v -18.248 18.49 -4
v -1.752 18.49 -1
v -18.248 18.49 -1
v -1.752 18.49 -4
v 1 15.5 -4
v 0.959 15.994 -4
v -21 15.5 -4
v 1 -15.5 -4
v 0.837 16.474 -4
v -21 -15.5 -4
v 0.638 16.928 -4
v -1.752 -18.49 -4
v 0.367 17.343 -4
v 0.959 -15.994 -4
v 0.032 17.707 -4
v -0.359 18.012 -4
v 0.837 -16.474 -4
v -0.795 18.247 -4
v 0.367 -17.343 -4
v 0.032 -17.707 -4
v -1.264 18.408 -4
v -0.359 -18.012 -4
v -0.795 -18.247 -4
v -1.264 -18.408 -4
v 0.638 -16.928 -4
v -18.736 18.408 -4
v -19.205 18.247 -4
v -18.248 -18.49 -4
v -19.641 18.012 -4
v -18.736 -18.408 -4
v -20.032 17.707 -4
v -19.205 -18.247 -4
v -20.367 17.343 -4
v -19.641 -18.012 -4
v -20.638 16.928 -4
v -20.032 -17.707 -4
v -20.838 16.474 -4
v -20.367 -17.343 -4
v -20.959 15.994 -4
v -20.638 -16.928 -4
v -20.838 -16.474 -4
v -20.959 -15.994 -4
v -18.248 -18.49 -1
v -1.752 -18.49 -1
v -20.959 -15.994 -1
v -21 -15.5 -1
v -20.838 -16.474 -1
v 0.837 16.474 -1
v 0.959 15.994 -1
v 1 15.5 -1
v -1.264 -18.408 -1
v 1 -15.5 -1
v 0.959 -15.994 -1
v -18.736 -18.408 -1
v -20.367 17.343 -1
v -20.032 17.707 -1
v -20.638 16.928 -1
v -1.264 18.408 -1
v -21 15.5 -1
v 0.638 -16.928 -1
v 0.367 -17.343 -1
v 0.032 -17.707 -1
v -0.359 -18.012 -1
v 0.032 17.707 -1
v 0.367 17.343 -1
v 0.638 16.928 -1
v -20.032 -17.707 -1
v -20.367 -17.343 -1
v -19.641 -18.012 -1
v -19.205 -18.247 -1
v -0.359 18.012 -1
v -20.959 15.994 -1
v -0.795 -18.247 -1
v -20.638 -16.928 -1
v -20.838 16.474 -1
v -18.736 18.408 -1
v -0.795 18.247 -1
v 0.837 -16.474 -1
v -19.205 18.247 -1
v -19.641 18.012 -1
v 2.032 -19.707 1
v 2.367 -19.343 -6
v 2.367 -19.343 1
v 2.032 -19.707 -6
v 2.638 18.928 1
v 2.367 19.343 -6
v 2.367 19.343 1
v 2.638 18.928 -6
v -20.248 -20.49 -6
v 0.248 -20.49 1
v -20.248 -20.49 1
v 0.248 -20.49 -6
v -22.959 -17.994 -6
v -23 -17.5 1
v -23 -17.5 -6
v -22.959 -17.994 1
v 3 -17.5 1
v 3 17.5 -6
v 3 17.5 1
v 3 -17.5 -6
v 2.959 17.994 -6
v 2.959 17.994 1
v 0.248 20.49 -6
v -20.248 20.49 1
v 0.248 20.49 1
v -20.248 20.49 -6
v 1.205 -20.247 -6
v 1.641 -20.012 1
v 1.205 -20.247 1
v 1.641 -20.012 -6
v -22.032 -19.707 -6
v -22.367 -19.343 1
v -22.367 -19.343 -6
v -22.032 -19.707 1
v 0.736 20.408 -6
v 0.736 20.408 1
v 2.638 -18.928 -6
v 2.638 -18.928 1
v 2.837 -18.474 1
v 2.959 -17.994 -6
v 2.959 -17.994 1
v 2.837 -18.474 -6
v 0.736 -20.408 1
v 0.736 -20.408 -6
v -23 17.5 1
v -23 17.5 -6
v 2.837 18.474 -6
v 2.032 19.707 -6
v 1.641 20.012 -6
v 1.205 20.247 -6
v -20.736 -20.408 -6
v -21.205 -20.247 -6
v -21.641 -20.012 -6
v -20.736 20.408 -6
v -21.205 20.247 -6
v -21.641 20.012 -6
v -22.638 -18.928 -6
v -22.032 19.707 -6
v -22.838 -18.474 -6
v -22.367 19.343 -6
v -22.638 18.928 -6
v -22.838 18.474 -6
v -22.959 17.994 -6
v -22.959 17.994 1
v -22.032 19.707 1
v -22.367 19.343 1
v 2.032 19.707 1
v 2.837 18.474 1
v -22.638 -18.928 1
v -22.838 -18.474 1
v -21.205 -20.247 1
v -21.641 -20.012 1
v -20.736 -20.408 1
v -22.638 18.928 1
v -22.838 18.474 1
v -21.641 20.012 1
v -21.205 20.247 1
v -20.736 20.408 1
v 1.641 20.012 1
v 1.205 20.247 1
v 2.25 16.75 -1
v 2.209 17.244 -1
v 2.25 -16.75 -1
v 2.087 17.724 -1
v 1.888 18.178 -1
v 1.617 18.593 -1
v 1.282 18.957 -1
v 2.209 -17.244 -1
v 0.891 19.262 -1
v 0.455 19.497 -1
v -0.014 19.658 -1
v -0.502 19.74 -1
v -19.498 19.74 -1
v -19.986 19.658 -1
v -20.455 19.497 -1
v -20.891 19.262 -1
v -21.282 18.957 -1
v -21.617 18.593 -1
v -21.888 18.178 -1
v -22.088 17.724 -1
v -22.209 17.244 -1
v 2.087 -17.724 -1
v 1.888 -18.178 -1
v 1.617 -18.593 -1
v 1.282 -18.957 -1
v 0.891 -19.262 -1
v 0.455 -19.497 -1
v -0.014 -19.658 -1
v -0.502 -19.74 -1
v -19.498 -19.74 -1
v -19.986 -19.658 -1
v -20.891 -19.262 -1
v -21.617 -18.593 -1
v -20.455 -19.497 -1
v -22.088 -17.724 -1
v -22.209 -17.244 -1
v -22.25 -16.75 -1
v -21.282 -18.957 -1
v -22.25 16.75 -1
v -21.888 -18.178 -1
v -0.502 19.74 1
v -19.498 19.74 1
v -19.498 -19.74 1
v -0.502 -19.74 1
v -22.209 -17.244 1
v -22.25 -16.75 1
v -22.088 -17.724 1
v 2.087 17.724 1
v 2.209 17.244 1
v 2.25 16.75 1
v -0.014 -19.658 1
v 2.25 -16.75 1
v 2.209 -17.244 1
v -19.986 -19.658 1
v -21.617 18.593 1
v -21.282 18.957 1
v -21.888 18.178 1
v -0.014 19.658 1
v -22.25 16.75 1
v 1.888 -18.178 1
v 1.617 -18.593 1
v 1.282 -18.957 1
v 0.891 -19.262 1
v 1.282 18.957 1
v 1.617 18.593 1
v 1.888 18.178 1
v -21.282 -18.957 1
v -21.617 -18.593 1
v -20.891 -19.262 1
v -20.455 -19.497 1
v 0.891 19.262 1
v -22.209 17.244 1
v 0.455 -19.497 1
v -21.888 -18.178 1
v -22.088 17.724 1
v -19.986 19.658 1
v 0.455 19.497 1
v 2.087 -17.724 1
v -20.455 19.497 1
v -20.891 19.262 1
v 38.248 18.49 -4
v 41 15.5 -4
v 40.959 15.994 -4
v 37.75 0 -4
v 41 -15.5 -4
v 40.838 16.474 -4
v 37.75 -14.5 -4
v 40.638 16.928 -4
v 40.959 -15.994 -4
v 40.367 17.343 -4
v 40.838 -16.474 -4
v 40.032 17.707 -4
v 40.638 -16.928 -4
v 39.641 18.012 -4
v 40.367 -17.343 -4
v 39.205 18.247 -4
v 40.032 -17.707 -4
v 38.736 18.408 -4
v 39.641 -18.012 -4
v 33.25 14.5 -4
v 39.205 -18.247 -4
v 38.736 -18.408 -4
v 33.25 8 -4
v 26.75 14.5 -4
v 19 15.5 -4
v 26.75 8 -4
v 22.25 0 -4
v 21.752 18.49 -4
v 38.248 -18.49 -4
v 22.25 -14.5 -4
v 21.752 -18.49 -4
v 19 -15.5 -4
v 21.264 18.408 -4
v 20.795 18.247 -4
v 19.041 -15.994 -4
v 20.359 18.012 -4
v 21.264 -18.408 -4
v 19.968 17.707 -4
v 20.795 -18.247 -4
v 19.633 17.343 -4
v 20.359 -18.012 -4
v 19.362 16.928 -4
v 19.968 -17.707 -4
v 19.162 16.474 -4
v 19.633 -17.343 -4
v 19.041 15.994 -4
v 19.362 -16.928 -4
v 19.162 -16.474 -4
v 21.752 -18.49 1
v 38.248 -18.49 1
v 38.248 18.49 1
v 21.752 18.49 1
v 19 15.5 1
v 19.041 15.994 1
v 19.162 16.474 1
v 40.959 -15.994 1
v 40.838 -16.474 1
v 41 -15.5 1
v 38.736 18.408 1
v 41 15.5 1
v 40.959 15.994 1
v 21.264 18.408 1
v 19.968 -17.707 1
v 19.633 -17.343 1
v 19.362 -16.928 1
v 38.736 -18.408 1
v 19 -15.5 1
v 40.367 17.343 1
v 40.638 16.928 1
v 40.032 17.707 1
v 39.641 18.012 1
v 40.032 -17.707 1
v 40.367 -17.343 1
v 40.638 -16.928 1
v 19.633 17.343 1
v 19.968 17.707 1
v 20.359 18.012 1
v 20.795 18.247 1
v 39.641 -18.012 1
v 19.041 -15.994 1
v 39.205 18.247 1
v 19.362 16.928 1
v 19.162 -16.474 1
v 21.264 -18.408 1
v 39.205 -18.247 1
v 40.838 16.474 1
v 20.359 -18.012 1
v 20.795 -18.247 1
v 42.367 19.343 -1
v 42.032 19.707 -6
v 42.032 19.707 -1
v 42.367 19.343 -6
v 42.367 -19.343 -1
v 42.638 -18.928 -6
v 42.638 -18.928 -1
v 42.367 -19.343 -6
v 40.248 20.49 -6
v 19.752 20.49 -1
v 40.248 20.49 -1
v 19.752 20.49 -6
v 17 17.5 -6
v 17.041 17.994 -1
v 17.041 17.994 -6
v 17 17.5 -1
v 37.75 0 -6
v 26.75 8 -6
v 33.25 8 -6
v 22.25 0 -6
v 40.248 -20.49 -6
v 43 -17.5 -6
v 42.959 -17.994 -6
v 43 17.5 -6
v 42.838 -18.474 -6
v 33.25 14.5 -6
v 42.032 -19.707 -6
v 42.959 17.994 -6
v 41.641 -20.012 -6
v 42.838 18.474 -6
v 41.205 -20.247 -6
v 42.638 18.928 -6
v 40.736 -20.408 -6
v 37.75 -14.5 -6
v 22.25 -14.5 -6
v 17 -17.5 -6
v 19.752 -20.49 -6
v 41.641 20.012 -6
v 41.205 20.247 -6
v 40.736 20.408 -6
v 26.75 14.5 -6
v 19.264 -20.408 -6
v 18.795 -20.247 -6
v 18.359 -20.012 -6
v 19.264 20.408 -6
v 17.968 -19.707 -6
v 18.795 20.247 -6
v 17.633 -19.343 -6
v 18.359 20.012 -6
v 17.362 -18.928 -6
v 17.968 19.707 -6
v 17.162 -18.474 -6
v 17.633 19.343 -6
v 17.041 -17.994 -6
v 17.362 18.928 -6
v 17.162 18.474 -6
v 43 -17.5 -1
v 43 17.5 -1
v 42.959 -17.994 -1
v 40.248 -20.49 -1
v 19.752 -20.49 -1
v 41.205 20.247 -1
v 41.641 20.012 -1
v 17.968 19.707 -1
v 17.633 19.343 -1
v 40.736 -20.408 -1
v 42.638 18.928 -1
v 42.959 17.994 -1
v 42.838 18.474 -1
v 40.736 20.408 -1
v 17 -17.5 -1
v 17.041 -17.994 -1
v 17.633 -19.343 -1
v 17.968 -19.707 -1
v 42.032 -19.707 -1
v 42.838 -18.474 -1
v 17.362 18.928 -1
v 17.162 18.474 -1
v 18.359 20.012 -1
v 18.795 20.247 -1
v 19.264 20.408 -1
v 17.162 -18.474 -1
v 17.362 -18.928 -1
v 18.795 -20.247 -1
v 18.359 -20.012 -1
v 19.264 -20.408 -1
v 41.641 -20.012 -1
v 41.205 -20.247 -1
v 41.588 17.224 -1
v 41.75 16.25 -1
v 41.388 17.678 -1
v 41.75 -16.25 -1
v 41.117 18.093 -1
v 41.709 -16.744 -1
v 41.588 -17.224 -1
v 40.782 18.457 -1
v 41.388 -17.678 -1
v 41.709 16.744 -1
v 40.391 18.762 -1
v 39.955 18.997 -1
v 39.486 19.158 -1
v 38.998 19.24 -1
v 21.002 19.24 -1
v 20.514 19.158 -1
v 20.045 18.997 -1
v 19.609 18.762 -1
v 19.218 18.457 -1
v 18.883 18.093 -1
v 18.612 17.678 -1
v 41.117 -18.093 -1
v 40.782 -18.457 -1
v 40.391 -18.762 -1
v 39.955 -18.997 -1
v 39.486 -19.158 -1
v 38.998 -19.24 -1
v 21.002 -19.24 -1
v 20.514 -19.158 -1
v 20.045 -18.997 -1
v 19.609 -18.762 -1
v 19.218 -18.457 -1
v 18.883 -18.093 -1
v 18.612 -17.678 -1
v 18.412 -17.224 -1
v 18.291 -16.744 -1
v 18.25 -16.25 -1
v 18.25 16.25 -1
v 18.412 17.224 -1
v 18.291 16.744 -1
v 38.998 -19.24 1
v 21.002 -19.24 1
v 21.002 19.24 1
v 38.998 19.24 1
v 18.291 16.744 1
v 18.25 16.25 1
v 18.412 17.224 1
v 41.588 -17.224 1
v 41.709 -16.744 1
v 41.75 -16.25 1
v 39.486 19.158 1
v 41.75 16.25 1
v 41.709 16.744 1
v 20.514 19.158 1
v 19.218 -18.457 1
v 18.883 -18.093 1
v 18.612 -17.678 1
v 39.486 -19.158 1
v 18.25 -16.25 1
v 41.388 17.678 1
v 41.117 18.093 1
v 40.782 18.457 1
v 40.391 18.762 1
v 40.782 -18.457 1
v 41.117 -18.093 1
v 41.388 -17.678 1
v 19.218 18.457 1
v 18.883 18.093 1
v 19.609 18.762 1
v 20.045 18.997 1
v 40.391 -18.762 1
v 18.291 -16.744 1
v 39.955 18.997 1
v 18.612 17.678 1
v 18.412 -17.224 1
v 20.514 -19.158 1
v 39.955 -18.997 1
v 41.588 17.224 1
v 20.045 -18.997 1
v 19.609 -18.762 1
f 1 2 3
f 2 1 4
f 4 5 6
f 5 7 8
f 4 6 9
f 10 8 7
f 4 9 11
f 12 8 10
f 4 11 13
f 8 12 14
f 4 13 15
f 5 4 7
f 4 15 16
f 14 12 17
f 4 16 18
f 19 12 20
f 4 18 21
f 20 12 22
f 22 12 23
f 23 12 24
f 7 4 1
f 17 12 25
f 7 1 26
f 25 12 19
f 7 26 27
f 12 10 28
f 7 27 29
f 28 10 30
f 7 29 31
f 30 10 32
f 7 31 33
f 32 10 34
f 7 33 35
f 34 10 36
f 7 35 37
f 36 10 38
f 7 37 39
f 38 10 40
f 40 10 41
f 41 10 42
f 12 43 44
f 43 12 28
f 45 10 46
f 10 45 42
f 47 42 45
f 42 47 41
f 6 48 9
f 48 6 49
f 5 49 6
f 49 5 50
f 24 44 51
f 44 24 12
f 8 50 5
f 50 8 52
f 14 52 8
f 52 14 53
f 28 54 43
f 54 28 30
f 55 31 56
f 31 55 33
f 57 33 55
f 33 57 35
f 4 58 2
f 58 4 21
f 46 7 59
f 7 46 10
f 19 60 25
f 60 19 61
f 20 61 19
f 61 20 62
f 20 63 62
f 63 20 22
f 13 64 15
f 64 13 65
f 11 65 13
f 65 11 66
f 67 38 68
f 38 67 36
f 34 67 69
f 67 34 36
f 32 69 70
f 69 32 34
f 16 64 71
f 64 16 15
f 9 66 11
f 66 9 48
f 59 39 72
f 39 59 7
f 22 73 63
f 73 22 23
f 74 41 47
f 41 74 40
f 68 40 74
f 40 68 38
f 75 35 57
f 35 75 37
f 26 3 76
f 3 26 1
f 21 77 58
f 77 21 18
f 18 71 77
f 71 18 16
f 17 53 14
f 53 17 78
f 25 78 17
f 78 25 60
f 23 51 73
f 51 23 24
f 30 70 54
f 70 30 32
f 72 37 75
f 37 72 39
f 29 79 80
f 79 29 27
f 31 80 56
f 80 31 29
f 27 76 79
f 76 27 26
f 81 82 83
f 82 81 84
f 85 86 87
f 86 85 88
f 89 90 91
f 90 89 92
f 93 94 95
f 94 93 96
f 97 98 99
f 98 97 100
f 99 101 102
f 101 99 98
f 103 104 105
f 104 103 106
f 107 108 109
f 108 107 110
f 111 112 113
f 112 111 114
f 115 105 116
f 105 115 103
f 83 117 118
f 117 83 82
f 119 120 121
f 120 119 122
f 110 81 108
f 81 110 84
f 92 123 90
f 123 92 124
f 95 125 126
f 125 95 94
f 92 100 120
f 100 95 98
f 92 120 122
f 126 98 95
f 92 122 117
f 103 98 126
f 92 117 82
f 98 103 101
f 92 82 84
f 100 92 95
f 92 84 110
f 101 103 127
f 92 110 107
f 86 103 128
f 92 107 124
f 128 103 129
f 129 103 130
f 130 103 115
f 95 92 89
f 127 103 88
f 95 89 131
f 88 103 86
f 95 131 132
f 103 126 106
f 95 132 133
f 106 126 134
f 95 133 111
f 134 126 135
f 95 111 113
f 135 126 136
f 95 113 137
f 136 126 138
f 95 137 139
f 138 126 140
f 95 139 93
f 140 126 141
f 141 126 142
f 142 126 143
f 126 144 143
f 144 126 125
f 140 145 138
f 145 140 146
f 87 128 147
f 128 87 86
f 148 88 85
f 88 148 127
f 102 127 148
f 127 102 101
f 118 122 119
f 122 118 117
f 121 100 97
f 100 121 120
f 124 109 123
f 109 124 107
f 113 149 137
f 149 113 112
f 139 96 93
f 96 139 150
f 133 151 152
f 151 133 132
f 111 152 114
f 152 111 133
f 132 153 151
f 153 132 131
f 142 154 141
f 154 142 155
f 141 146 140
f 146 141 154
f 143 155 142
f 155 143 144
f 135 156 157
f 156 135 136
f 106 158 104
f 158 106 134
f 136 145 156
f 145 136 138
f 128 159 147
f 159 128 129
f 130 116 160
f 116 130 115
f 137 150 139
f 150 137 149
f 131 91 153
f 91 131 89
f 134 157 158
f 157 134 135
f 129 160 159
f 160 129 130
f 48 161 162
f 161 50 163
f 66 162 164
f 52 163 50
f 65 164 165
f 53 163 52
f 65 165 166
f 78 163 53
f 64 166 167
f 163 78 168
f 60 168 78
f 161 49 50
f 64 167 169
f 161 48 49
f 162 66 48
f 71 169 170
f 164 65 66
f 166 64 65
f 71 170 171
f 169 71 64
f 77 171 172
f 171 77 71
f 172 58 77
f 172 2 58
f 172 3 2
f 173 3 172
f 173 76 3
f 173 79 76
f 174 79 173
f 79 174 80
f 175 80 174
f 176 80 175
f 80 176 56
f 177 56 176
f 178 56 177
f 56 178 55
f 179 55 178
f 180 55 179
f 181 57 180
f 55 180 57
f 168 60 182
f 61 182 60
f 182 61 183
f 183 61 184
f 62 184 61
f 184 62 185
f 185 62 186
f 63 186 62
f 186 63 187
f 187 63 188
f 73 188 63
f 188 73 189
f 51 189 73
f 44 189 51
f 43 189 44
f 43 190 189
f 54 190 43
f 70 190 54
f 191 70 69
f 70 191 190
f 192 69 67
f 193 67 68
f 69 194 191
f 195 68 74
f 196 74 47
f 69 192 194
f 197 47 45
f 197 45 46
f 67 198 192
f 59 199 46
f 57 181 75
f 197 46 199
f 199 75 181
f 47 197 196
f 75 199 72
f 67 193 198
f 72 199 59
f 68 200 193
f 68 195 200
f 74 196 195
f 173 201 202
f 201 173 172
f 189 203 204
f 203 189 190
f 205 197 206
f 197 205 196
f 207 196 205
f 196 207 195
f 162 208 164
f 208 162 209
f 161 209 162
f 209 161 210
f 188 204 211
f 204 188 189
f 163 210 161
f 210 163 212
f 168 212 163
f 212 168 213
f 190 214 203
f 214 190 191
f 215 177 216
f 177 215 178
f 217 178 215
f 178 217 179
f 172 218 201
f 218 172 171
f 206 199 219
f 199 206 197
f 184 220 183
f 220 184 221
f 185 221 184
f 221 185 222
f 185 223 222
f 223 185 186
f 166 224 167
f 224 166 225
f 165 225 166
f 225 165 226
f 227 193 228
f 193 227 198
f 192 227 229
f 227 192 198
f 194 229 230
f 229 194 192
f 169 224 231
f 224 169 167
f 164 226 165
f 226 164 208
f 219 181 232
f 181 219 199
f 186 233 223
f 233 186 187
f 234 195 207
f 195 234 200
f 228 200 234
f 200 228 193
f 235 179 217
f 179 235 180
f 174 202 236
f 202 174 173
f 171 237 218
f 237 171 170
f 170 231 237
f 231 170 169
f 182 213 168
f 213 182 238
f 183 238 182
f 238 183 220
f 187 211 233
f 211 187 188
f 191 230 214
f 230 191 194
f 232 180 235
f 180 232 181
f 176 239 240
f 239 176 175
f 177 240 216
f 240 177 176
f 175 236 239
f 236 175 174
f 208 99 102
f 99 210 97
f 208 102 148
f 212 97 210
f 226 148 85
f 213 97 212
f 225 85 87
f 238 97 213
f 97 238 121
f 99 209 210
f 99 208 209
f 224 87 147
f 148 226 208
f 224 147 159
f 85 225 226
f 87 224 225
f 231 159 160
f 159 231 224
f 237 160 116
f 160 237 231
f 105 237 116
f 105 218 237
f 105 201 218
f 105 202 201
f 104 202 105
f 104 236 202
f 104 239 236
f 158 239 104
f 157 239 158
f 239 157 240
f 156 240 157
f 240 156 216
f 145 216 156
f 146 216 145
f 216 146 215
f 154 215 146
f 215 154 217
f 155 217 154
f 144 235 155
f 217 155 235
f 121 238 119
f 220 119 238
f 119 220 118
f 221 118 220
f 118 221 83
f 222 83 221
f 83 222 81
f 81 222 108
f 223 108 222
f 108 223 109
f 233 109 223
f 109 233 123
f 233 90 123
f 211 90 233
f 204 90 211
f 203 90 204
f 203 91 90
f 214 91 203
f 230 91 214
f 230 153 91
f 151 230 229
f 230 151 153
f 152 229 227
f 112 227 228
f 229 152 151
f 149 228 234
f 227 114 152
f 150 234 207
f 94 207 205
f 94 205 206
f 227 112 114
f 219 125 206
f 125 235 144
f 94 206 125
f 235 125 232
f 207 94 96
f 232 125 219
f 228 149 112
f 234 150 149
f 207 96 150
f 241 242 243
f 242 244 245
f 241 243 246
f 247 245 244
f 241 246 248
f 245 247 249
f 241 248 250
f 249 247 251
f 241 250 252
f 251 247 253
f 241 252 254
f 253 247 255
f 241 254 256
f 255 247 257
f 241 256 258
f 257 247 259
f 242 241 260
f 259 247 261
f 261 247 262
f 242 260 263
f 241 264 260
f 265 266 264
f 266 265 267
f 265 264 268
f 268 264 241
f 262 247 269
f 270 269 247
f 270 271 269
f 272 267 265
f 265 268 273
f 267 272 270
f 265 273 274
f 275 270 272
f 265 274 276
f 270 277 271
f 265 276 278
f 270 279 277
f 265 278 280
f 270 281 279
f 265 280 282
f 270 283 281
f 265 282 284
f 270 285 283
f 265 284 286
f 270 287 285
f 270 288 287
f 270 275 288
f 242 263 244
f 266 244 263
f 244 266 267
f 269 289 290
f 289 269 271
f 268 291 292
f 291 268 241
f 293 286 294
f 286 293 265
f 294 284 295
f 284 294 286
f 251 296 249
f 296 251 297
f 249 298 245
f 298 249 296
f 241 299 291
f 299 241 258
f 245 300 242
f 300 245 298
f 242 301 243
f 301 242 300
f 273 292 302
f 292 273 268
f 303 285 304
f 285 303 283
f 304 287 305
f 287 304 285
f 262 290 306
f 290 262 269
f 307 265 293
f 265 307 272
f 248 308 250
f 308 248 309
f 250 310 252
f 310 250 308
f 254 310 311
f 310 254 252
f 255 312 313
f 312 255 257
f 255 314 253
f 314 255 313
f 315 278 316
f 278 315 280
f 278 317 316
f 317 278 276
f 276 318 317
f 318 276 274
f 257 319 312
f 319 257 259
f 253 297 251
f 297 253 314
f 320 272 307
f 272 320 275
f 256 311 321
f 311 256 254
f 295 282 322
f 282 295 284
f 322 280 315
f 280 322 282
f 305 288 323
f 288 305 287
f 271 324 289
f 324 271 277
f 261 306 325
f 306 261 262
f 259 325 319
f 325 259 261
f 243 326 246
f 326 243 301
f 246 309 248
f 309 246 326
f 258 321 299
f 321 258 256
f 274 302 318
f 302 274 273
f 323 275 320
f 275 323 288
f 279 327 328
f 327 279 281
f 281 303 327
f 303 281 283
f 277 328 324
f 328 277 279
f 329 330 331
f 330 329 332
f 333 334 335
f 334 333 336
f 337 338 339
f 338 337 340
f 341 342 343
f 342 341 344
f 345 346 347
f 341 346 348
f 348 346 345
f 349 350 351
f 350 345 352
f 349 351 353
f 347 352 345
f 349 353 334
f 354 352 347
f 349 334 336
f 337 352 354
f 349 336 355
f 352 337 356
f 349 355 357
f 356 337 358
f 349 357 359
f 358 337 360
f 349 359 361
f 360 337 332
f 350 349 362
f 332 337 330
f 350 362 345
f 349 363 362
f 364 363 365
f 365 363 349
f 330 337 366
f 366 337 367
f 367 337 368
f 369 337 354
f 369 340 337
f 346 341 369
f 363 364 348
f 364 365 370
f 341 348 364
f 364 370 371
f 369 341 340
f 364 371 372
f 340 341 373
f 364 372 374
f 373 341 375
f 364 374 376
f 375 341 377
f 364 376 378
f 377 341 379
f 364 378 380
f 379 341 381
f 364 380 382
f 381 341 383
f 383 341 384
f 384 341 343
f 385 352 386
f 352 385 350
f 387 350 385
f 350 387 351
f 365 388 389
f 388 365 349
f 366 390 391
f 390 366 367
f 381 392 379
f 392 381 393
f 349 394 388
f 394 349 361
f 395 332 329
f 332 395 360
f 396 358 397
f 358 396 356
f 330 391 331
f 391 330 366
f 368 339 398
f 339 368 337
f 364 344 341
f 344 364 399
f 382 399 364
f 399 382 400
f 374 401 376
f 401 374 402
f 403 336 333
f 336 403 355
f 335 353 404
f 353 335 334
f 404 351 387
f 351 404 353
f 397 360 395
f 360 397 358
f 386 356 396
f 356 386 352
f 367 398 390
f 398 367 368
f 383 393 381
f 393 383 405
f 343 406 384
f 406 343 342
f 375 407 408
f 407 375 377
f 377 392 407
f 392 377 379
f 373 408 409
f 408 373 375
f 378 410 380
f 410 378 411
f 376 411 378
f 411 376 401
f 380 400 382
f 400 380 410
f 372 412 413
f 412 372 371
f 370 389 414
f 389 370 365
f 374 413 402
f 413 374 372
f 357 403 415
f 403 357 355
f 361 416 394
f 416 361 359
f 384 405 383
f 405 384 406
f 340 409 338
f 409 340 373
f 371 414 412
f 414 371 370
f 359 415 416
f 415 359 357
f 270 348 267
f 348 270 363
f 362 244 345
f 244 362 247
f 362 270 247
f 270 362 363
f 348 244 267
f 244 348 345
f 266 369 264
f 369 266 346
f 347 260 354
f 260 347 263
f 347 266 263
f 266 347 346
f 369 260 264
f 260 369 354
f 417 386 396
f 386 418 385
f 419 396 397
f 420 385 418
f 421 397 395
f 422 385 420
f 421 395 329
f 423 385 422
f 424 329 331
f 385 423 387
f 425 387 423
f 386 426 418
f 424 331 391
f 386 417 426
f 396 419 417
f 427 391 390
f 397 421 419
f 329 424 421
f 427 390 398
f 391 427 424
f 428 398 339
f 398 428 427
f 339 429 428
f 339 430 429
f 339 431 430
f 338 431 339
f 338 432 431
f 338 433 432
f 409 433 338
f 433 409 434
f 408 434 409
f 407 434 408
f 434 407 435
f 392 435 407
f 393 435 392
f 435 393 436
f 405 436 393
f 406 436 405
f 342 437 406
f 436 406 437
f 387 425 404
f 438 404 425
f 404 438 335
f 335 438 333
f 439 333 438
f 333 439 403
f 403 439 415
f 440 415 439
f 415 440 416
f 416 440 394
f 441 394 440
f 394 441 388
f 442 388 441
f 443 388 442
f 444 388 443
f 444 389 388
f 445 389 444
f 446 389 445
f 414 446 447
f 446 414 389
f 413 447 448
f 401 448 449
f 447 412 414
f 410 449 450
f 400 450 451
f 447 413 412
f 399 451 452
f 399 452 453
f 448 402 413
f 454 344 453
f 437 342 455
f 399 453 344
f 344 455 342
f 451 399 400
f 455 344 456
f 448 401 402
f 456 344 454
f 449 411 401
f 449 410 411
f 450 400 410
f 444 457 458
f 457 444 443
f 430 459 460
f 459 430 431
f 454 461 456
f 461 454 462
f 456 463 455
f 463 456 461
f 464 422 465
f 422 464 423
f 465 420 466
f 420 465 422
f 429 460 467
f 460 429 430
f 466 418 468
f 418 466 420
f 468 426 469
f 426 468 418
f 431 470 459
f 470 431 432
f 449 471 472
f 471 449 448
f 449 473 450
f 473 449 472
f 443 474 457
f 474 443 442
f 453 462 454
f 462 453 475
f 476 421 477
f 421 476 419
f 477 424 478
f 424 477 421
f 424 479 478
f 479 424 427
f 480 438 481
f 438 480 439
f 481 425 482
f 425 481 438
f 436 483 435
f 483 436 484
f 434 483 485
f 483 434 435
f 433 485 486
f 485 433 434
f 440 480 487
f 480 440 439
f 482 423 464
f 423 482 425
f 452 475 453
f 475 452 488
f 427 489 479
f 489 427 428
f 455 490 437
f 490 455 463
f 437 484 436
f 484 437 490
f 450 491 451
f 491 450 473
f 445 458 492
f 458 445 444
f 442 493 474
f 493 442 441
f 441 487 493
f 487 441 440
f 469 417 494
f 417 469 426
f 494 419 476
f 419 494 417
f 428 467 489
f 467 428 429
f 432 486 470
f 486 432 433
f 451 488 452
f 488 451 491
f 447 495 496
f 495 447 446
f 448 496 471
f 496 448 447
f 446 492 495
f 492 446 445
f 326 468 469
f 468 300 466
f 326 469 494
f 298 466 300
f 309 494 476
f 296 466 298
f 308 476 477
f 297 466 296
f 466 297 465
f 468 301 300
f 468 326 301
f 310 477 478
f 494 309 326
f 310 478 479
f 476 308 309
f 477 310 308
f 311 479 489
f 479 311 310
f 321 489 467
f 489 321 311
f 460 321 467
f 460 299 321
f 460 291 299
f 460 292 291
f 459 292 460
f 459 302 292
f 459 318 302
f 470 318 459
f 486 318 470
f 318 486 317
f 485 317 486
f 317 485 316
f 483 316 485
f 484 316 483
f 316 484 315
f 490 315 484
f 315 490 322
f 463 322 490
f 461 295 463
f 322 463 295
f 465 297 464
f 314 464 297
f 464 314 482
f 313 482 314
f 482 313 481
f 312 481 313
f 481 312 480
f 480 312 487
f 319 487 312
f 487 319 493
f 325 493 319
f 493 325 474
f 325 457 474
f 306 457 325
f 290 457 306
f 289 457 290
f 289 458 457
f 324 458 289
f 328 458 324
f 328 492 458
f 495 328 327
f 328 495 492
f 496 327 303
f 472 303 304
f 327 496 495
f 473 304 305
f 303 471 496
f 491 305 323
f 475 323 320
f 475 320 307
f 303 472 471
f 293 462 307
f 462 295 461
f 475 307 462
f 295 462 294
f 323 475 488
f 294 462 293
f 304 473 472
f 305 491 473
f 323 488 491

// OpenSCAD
$fa = 1;
$fs = 0.5;
$fn = 0;

wall = 4;
dims = [20, 35, 12];
cutout = [15.5, 14.5, 2*wall];
corner_r = 3;
offset = 3;
lip = 2;
dist = 10;

button = [6.5,6.5,2*wall];
offset_button = 3;

module skin(debug=false, thickness=5, box=400) {
    if (!debug) intersection() { 
        children(); 
        minkowski() {
            cube(thickness,center=true);
            difference() { 
                cube(box,center=true); 
                children(); 
            } 
        } 
    }
    
    if (debug) children();
}

module enclosure(thickness=10) {
    difference() {
        skin(thickness=thickness) {
            hull() {
                translate([0,0,0]) cylinder(h=dims[2], r=corner_r, center=true);
                translate([dims[0],0,0]) cylinder(h=dims[2], r=corner_r, center=true);
                translate([0,dims[1],0]) cylinder(h=dims[2], r=corner_r, center=true);
                translate([dims[0],dims[1],0]) cylinder(h=dims[2], r=corner_r, center=true);
            }
        }
        translate([dims[0]/2-cutout[0]/2, dims[1]-cutout[1]-offset, dims[2]/2-cutout[2]/2]) 
            cube(cutout);
        translate([dims[0]/2-button[0]/2, offset_button, dims[2]/2-button[2]/2])
            cube(button);
    }
}

module bottom() {
    union() {
        difference() {
            enclosure(wall);
            translate([-dims[0], -dims[1], -lip/2]) cube([4*dims[0], 4*dims[1], dims[2]]);
        }
        difference() {
            enclosure((wall-1)/2);
            translate([-dims[0], -dims[1], lip/2]) cube([4*dims[0], 4*dims[1], dims[2]]);
        }
    }
}

module top() {
    union() {
        difference() {
            enclosure(wall);
            translate([-dims[0], -dims[1], -dims[2]+lip/2]) cube([4*dims[0], 4*dims[1], dims[2]]);
        }
        difference() {
            difference() {
                enclosure(wall);
                enclosure(wall-(wall-1)/2);
            }
            translate([-dims[0], -dims[1], -dims[2]-lip/2]) cube([4*dims[0], 4*dims[1], dims[2]]);
        }
    }
}

translate([-dims[0]/2-dist, -dims[1]/2, 0]) bottom();
translate([dims[0]/2+dist, dims[1]/2, 0]) rotate([180,0,0]) top();
